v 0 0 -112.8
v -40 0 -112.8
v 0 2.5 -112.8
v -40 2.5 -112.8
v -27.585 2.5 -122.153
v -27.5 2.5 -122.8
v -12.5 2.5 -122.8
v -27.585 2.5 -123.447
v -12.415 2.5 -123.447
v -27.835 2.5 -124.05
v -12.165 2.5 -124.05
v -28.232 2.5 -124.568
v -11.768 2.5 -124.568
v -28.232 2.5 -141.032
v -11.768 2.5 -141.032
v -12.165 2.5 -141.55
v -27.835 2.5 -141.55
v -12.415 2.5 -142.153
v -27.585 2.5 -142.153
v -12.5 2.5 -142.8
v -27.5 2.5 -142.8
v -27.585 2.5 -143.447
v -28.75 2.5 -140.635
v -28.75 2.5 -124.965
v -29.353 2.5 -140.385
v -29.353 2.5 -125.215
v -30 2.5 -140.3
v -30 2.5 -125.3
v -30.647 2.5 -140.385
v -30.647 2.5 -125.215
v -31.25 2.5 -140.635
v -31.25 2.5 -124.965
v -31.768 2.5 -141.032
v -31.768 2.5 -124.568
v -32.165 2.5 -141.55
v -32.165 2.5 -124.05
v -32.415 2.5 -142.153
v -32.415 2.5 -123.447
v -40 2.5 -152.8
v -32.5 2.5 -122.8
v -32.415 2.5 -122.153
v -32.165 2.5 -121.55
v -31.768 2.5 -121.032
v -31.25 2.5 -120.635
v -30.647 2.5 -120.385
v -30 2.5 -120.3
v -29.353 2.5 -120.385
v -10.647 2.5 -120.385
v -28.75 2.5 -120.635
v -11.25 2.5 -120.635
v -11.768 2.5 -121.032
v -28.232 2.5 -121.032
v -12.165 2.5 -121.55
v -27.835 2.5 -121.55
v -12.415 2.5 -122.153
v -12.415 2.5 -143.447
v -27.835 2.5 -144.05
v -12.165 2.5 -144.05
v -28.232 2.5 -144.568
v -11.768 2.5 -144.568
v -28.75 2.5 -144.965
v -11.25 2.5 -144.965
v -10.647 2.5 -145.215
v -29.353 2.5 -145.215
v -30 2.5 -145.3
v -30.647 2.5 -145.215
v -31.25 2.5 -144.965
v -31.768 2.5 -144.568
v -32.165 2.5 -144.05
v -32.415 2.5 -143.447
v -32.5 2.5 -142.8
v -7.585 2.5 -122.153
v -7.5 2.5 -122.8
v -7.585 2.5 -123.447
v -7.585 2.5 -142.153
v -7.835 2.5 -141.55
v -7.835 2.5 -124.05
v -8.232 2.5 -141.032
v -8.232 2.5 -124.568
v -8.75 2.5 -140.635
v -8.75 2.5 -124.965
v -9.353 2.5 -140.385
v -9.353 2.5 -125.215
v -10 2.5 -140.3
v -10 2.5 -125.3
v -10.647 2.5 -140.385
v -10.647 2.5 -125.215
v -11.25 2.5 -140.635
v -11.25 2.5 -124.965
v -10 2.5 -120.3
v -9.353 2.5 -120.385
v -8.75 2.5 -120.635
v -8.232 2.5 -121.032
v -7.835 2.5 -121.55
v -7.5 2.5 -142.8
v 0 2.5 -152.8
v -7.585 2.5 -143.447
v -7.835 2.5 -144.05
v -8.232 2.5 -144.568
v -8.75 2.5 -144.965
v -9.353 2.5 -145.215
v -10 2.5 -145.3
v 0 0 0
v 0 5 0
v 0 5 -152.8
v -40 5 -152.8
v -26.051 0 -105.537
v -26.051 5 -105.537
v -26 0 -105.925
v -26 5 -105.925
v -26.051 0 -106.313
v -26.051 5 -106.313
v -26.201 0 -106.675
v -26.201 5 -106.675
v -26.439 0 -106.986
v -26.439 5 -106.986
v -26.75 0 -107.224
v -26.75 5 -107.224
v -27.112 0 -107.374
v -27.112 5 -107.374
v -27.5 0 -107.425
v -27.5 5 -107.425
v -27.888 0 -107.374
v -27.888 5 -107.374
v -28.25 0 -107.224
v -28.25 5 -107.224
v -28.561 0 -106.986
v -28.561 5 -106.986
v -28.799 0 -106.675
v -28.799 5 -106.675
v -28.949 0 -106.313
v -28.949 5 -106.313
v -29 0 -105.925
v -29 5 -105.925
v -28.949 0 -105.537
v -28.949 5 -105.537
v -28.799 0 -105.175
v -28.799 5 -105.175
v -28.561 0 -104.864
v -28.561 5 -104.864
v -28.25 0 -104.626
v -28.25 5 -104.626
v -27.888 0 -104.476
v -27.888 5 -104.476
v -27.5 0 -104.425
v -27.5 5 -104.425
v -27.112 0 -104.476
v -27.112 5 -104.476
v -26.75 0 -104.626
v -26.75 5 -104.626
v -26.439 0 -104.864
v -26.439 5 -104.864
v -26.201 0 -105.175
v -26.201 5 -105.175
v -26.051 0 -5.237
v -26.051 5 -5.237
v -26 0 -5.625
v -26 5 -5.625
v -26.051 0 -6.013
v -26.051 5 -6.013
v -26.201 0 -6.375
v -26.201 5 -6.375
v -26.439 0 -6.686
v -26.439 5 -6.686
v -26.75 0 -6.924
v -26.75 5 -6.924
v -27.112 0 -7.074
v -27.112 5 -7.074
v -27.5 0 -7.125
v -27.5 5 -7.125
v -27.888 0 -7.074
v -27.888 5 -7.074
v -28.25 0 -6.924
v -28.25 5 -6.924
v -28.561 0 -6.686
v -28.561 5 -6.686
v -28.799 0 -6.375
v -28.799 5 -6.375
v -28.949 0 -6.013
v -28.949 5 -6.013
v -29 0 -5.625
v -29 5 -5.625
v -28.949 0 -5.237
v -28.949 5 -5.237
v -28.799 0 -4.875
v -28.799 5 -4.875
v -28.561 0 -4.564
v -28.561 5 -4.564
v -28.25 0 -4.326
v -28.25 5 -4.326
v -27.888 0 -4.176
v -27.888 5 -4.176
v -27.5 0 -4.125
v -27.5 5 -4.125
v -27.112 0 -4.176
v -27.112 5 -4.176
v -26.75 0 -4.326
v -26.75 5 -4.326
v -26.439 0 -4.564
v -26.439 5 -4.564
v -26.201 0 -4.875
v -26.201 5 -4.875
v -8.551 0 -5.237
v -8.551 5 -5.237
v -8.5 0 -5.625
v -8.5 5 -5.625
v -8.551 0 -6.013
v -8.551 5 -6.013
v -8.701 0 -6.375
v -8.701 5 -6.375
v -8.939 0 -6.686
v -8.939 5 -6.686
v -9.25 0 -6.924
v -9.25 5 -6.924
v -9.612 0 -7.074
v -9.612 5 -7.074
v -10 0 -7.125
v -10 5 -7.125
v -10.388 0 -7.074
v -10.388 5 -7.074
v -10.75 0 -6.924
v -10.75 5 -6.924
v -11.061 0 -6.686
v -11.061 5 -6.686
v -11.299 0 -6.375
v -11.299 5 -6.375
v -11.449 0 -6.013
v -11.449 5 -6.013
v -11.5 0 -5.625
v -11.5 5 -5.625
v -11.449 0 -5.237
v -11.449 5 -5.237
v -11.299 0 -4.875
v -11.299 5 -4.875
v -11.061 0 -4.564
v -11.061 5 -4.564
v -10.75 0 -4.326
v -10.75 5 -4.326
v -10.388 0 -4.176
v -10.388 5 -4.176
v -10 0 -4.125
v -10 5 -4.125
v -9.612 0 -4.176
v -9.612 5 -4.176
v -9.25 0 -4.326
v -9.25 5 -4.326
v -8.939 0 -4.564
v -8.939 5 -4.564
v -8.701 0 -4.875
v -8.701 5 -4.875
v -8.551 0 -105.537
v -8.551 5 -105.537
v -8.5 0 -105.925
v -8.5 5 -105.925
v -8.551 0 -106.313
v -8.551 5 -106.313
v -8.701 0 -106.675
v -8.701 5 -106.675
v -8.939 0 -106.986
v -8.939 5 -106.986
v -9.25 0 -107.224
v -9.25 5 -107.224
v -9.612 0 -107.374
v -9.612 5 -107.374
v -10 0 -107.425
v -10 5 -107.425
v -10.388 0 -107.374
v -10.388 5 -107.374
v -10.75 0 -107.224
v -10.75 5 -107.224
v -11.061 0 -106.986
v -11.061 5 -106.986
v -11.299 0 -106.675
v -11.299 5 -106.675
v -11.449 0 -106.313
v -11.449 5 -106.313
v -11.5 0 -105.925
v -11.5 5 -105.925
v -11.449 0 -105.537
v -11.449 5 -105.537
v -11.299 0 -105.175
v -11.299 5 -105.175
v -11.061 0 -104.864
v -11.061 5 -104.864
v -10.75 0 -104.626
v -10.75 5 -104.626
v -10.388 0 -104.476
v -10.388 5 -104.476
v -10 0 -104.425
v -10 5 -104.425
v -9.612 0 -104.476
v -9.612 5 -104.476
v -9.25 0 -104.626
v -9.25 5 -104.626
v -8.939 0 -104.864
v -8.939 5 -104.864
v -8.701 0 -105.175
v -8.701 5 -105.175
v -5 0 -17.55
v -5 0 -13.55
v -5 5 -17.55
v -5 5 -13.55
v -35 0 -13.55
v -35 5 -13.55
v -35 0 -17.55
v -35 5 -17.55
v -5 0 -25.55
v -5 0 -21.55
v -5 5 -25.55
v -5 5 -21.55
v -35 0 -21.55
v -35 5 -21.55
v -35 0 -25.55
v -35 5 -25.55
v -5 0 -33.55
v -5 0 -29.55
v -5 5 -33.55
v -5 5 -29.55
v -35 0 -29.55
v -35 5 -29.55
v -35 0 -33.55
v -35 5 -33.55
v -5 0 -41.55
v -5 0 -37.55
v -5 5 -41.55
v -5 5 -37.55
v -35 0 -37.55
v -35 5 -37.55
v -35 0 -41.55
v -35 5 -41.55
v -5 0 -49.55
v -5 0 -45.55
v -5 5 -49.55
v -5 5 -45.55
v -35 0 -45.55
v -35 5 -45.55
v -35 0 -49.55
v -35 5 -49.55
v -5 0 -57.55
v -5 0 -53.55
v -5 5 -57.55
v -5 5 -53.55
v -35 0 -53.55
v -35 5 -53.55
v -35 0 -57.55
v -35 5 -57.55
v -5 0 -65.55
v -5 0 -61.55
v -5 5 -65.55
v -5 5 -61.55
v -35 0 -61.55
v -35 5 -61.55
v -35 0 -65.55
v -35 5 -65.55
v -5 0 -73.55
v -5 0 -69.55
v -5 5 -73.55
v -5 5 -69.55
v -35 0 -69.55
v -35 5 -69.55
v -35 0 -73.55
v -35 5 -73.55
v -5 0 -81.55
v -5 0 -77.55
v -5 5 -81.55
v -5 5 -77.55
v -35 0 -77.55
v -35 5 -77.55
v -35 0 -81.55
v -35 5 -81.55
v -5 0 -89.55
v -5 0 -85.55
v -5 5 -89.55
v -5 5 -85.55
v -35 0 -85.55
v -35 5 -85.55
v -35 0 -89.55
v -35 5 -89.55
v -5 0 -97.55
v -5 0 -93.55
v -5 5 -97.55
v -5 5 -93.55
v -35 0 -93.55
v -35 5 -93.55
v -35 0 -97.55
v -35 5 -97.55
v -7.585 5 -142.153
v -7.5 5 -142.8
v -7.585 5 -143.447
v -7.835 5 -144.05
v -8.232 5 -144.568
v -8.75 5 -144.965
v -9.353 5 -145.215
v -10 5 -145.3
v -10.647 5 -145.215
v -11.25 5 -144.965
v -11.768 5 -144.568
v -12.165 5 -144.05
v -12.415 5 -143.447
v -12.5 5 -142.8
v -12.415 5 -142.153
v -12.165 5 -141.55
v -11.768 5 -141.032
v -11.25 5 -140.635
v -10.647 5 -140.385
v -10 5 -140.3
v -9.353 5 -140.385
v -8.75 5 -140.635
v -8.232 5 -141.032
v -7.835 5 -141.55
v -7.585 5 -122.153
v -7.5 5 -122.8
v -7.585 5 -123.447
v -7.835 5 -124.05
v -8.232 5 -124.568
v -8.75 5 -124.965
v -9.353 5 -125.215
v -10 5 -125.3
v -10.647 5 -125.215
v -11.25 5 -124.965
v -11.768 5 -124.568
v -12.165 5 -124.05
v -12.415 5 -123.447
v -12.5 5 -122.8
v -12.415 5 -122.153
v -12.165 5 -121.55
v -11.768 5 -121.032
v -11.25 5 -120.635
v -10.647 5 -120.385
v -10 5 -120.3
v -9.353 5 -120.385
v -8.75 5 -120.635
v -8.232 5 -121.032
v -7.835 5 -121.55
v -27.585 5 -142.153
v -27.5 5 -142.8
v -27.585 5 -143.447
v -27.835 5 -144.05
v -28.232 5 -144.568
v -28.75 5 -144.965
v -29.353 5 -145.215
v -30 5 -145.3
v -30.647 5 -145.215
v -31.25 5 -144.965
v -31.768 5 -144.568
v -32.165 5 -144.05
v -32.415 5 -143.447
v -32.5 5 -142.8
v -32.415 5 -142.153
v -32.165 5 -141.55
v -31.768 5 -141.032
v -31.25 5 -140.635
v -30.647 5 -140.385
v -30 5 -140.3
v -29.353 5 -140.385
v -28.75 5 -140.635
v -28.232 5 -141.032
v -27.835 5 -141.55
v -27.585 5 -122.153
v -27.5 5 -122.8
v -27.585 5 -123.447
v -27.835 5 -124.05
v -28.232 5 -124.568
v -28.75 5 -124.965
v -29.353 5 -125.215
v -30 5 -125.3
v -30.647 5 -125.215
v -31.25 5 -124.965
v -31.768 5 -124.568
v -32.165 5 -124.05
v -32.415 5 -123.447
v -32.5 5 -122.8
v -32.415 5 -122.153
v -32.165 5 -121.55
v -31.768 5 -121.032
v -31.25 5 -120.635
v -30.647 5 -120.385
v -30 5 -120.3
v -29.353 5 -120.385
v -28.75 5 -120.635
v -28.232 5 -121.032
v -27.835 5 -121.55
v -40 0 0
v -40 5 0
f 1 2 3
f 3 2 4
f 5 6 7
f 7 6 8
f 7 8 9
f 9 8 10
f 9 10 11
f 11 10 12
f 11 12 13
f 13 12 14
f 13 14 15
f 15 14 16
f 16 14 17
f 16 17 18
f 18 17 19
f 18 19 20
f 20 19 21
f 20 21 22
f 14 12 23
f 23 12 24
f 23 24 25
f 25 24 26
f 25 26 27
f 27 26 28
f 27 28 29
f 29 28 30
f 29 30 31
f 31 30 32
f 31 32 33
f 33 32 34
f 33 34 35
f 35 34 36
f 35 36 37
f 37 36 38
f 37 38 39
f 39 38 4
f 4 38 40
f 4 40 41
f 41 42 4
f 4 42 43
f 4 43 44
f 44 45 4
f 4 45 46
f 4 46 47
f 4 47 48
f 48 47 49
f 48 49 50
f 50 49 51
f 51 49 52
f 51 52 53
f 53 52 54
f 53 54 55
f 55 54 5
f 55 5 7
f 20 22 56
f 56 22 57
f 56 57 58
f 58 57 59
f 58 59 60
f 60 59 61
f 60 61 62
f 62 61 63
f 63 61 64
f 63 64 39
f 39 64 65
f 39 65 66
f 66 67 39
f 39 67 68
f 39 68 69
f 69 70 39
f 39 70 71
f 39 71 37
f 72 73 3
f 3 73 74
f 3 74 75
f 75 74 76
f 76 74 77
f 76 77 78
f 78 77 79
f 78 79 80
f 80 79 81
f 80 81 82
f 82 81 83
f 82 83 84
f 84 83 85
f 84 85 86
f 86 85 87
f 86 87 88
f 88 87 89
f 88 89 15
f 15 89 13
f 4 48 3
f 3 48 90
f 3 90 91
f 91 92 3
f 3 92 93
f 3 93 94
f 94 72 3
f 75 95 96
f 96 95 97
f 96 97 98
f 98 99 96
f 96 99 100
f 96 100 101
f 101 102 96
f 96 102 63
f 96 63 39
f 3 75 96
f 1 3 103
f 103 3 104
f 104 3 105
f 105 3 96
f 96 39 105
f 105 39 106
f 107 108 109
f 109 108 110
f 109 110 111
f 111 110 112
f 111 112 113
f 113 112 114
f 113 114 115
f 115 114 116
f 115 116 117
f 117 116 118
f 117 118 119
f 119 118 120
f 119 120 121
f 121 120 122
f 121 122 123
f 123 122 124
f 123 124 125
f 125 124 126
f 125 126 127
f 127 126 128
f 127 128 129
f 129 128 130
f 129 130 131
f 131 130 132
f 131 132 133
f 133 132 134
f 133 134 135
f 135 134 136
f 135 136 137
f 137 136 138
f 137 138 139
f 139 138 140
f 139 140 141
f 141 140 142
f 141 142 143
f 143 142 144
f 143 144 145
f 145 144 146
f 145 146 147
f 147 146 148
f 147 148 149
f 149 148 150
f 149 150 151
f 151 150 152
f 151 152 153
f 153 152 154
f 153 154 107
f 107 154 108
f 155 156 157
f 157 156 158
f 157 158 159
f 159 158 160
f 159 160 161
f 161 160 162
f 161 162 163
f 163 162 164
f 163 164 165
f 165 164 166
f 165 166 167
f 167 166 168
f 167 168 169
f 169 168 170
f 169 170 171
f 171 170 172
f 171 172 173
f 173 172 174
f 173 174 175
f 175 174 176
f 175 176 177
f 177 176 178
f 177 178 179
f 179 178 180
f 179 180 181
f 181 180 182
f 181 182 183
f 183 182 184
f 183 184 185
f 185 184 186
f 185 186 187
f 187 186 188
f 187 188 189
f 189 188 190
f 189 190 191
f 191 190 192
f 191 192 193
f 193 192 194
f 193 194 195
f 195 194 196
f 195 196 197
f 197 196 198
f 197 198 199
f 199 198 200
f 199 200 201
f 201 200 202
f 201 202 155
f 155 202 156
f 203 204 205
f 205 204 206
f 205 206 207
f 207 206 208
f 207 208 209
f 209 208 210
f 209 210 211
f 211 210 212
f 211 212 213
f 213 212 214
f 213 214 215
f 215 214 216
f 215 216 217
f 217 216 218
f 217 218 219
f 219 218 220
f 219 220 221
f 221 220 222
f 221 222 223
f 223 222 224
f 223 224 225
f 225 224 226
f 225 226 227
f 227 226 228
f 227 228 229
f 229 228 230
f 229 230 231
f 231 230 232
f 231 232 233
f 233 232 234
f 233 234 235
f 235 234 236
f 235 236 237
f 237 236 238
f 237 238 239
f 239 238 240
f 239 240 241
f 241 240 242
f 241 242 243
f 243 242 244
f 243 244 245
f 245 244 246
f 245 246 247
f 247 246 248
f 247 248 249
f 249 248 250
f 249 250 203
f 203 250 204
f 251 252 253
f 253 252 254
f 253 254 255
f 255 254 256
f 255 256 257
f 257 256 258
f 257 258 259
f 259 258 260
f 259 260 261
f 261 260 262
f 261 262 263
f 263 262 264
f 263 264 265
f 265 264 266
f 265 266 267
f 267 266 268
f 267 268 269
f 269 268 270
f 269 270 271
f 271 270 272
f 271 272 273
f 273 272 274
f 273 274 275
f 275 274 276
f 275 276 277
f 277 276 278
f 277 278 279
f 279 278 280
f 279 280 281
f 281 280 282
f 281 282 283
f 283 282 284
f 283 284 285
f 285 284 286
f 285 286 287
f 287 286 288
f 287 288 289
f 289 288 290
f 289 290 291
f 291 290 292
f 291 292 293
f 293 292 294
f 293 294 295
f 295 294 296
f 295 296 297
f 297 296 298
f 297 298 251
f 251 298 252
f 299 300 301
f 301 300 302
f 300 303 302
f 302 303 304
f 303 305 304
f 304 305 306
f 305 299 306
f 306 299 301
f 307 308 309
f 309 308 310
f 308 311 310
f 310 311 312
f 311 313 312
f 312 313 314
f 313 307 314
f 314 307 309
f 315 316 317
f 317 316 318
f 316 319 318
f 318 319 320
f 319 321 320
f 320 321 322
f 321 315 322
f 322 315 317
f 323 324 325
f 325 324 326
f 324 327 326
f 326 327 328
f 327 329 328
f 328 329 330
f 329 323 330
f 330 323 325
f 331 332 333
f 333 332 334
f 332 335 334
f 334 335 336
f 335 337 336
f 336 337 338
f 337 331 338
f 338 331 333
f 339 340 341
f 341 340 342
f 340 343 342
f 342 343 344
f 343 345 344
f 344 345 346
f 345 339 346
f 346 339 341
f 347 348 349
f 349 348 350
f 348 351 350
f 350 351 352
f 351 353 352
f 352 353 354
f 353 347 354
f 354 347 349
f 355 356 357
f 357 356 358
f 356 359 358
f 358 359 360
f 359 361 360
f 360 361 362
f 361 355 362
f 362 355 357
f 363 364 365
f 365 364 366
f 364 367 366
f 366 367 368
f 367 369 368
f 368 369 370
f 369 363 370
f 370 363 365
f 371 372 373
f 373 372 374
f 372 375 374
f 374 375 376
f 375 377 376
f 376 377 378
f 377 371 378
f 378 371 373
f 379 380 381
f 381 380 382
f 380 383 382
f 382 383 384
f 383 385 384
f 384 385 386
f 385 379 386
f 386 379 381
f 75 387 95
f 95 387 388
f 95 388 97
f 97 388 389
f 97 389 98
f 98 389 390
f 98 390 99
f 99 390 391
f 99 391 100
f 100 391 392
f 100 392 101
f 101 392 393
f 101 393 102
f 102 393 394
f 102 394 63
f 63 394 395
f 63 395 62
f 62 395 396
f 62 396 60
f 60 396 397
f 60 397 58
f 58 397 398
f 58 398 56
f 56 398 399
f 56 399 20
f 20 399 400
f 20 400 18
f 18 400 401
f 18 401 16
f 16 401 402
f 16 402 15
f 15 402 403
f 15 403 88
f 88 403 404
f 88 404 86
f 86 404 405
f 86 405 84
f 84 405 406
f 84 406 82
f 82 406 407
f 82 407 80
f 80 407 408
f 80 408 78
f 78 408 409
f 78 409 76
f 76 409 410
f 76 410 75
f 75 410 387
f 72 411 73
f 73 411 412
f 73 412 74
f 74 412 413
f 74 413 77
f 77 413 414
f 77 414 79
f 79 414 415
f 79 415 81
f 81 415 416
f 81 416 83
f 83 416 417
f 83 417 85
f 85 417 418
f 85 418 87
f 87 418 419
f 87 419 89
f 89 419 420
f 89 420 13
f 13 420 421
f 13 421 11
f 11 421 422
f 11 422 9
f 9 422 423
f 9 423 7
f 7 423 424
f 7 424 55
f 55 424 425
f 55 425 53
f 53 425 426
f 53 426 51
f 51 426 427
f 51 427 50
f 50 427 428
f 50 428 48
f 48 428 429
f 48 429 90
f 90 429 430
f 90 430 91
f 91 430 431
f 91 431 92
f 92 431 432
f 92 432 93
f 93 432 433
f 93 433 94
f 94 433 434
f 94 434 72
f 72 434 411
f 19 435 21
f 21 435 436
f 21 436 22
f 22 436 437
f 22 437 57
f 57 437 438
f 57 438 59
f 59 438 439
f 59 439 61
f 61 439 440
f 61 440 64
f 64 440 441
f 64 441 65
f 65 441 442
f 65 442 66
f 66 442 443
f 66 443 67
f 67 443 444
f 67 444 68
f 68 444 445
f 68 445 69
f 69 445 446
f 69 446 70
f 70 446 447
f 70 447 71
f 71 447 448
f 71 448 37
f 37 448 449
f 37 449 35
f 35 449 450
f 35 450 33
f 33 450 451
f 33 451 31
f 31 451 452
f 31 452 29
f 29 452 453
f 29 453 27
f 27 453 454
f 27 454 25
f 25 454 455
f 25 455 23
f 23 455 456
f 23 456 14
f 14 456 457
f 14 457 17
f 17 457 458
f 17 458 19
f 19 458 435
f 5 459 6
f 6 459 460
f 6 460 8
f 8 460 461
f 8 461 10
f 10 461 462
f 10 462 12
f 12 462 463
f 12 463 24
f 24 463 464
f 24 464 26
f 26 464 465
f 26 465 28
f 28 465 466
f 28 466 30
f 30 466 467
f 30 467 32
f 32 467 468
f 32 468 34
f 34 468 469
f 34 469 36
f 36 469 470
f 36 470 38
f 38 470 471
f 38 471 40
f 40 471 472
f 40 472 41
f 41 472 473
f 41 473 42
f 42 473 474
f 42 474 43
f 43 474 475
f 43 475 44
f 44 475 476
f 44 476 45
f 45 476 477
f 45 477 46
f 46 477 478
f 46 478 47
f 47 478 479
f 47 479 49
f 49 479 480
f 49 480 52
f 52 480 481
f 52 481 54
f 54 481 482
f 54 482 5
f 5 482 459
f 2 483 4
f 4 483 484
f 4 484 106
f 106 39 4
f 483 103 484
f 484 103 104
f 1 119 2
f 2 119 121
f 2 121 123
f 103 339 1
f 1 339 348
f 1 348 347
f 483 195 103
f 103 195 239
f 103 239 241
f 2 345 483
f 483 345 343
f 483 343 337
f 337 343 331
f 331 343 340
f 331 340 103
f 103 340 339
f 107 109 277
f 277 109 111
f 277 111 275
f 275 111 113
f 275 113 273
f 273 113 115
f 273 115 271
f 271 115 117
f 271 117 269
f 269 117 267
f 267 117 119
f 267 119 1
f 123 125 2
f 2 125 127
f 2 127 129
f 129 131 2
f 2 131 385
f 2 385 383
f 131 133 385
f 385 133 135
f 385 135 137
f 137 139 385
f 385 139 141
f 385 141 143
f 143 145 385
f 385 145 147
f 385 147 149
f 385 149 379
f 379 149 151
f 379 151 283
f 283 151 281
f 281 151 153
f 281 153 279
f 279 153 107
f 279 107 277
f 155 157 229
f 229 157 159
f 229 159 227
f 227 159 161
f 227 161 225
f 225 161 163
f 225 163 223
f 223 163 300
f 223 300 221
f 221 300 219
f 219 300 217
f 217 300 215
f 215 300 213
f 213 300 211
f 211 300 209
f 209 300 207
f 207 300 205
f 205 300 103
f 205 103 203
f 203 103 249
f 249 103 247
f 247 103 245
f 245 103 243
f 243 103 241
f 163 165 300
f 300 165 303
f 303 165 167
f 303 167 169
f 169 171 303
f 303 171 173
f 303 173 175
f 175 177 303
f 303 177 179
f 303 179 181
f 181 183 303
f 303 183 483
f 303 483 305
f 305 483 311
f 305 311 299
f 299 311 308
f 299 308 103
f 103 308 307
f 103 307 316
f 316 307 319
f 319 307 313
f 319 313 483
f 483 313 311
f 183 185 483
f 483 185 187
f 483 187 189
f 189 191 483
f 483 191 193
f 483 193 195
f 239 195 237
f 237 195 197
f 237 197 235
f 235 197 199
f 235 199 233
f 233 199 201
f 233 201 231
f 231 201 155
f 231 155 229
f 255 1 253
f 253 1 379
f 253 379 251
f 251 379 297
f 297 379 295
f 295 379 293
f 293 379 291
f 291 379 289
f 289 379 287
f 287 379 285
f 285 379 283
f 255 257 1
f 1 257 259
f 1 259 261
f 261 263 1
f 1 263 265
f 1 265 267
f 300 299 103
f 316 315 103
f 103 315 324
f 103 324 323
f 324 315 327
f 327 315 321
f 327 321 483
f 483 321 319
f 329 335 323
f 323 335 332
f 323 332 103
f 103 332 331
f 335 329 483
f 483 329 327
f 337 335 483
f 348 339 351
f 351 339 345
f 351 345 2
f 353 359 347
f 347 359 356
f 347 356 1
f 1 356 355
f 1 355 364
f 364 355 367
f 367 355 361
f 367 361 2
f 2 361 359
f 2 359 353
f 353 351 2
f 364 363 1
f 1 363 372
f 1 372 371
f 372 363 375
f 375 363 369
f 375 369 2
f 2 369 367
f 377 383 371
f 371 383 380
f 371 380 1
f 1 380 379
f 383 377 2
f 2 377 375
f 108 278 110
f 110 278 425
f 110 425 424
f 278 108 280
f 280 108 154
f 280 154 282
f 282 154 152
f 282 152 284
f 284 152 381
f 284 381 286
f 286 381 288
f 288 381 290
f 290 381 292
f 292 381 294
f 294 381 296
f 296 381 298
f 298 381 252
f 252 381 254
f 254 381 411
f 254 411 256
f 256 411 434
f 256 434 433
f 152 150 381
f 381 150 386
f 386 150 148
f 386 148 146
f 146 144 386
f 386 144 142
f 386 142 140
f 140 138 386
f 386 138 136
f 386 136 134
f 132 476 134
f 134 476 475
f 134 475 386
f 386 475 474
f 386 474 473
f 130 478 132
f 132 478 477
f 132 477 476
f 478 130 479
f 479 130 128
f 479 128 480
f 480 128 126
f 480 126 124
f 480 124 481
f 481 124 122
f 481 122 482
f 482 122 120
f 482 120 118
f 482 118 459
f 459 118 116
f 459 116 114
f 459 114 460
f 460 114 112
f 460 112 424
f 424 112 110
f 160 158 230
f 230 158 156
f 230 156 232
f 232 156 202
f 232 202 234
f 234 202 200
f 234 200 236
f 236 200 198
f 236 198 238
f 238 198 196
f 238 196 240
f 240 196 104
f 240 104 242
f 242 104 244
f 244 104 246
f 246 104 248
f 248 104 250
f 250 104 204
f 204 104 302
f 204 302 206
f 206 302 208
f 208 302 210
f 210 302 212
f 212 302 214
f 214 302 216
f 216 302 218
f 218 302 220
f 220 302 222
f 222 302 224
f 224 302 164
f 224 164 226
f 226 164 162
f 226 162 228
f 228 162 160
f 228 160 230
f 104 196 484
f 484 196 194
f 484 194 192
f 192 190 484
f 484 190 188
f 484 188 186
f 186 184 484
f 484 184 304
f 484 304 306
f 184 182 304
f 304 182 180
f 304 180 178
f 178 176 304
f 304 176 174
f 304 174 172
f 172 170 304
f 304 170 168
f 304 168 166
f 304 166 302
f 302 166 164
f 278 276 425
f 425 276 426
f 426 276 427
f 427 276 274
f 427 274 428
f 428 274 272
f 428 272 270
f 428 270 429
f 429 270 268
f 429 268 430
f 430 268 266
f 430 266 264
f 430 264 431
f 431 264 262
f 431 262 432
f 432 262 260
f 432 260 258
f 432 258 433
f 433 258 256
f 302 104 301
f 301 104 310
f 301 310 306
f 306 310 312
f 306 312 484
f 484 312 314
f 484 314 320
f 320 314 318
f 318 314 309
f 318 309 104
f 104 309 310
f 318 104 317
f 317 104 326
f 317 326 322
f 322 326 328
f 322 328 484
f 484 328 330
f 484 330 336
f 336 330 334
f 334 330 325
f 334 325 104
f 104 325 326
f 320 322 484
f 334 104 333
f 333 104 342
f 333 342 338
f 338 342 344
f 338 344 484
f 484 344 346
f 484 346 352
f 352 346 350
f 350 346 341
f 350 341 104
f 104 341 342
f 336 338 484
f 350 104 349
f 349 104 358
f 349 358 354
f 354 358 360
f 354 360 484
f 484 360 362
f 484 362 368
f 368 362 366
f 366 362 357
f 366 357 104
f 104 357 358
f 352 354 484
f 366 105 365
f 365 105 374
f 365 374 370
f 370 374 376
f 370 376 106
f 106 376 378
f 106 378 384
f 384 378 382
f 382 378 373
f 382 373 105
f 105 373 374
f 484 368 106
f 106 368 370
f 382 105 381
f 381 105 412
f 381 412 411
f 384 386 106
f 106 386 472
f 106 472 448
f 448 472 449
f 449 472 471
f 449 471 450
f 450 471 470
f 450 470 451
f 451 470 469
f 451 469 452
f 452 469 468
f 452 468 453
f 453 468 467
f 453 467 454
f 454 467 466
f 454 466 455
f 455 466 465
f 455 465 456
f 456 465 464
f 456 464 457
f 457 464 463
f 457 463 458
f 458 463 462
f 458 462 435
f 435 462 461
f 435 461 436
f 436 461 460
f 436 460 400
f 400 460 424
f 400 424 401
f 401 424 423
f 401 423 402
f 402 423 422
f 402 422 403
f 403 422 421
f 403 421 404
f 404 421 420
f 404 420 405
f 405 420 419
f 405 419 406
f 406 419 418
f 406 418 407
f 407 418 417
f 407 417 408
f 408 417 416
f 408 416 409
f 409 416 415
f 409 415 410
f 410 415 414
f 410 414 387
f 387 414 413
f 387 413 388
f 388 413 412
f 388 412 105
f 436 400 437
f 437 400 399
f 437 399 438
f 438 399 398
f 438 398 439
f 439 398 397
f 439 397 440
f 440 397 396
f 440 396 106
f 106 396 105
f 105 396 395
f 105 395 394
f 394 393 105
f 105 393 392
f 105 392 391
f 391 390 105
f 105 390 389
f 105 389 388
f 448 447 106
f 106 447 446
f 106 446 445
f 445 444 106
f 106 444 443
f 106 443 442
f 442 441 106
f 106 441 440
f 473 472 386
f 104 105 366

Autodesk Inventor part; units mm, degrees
ref_plane "YZ Plane" through (0, 0, 0) normal (1, 0, 0) x (0, 1, 0)
ref_plane "XZ Plane" through (0, 0, 0) normal (0, 1, 0) x (-1, 0, 0)
ref_plane "XY Plane" through (0, 0, 0) normal (0, 0, 1) x (1, 0, 0)
sketch "Sketch1" plane through (0, 0, 0) normal (0, 1, 0) x (-1, 0, 0)
  line L0 (0, 0) -> (40, 0)
  line L1 (40, 0) -> (40, -152.8)
  line L2 (40, -152.8) -> (0, -152.8)
  line L3 (0, -152.8) -> (0, 0)
  circle A0 centre (30, -122.8) radius 2.5
  circle A1 centre (30, -142.8) radius 2.5
  circle A2 centre (10, -122.8) radius 2.5
  circle A3 centre (10, -142.8) radius 2.5
  line L4 (5, -97.55) -> (35, -97.55)
  line L5 (35, -97.55) -> (35, -93.55)
  line L6 (35, -93.55) -> (5, -93.55)
  line L7 (5, -93.55) -> (5, -97.55)
  line L8 (5, -89.55) -> (35, -89.55)
  line L9 (35, -89.55) -> (35, -85.55)
  line L10 (35, -85.55) -> (5, -85.55)
  line L11 (5, -85.55) -> (5, -89.55)
  line L12 (5, -81.55) -> (35, -81.55)
  line L13 (35, -81.55) -> (35, -77.55)
  line L14 (35, -77.55) -> (5, -77.55)
  line L15 (5, -77.55) -> (5, -81.55)
  line L16 (5, -73.55) -> (35, -73.55)
  line L17 (35, -73.55) -> (35, -69.55)
  line L18 (35, -69.55) -> (5, -69.55)
  line L19 (5, -69.55) -> (5, -73.55)
  line L20 (5, -65.55) -> (35, -65.55)
  line L21 (35, -65.55) -> (35, -61.55)
  line L22 (35, -61.55) -> (5, -61.55)
  line L23 (5, -61.55) -> (5, -65.55)
  line L24 (5, -57.55) -> (35, -57.55)
  line L25 (35, -57.55) -> (35, -53.55)
  line L26 (35, -53.55) -> (5, -53.55)
  line L27 (5, -53.55) -> (5, -57.55)
  line L28 (5, -49.55) -> (35, -49.55)
  line L29 (35, -49.55) -> (35, -45.55)
  line L30 (35, -45.55) -> (5, -45.55)
  line L31 (5, -45.55) -> (5, -49.55)
  line L32 (5, -41.55) -> (35, -41.55)
  line L33 (35, -41.55) -> (35, -37.55)
  line L34 (35, -37.55) -> (5, -37.55)
  line L35 (5, -37.55) -> (5, -41.55)
  line L36 (5, -33.55) -> (35, -33.55)
  line L37 (35, -33.55) -> (35, -29.55)
  line L38 (35, -29.55) -> (5, -29.55)
  line L39 (5, -29.55) -> (5, -33.55)
  line L40 (5, -25.55) -> (35, -25.55)
  line L41 (35, -25.55) -> (35, -21.55)
  line L42 (35, -21.55) -> (5, -21.55)
  line L43 (5, -21.55) -> (5, -25.55)
  line L44 (5, -17.55) -> (35, -17.55)
  line L45 (35, -17.55) -> (35, -13.55)
  line L46 (35, -13.55) -> (5, -13.55)
  line L47 (5, -13.55) -> (5, -17.55)
  dimension "d0" = 40
  dimension "d1" = 152.8
  dimension "d2" = 5
  dimension "d3" = 5
  dimension "d4" = 5
  dimension "d5" = 5
  dimension "d6" = 10
  dimension "d7" = 0
  dimension "d8" = 20
  dimension "d11" = 30
  dimension "d12" = 20
  dimension "d13" = 30
  dimension "d14" = 10
  dimension "d15" = 0
  dimension "d16" = 30
  dimension "d18" = 55.25
  dimension "d31" = 30
  dimension "d33" = 30
  dimension "d35" = 30
  dimension "d37" = 30
  dimension "d39" = 30
  dimension "d41" = 30
  dimension "d43" = 30
  dimension "d45" = 30
  dimension "d47" = 30
  dimension "d49" = 30
extrude "Extrusion1" add sketch "Sketch1" along normal blind 5
sketch "Sketch2" plane through (0, 5, 0) normal (0, 1, 0) x (1, 0, 0)
  line L0 (-5, 17.55) -> (-5, 13.55) projected
  line L1 (-5, 13.55) -> (-35, 13.55) projected
  line L2 (-35, 13.55) -> (-35, 17.55) projected
  line L3 (-35, 17.55) -> (-5, 17.55) projected
  line L4 (-5, 25.55) -> (-5, 21.55) projected
  line L5 (-5, 21.55) -> (-35, 21.55) projected
  line L6 (-35, 21.55) -> (-35, 25.55) projected
  line L7 (-35, 25.55) -> (-5, 25.55) projected
  line L8 (-5, 33.55) -> (-5, 29.55) projected
  line L9 (-5, 29.55) -> (-35, 29.55) projected
  line L10 (-35, 29.55) -> (-35, 33.55) projected
  line L11 (-35, 33.55) -> (-5, 33.55) projected
  line L12 (-5, 41.55) -> (-5, 37.55) projected
  line L13 (-5, 37.55) -> (-35, 37.55) projected
  line L14 (-35, 37.55) -> (-35, 41.55) projected
  line L15 (-35, 41.55) -> (-5, 41.55) projected
  line L16 (-5, 49.55) -> (-5, 45.55) projected
  line L17 (-5, 45.55) -> (-35, 45.55) projected
  line L18 (-35, 45.55) -> (-35, 49.55) projected
  line L19 (-35, 49.55) -> (-5, 49.55) projected
  line L20 (-5, 57.55) -> (-5, 53.55) projected
  line L21 (-5, 53.55) -> (-35, 53.55) projected
  line L22 (-35, 53.55) -> (-35, 57.55) projected
  line L23 (-35, 57.55) -> (-5, 57.55) projected
  line L24 (-5, 65.55) -> (-5, 61.55) projected
  line L25 (-5, 61.55) -> (-35, 61.55) projected
  line L26 (-35, 61.55) -> (-35, 65.55) projected
  line L27 (-35, 65.55) -> (-5, 65.55) projected
  line L28 (-5, 73.55) -> (-5, 69.55) projected
  line L29 (-5, 69.55) -> (-35, 69.55) projected
  line L30 (-35, 69.55) -> (-35, 73.55) projected
  line L31 (-35, 73.55) -> (-5, 73.55) projected
  line L32 (-5, 81.55) -> (-5, 77.55) projected
  line L33 (-5, 77.55) -> (-35, 77.55) projected
  line L34 (-35, 77.55) -> (-35, 81.55) projected
  line L35 (-35, 81.55) -> (-5, 81.55) projected
  line L36 (-5, 89.55) -> (-5, 85.55) projected
  line L37 (-5, 85.55) -> (-35, 85.55) projected
  line L38 (-35, 85.55) -> (-35, 89.55) projected
  line L39 (-35, 89.55) -> (-5, 89.55) projected
  line L40 (-5, 97.55) -> (-5, 93.55) projected
  line L41 (-5, 93.55) -> (-35, 93.55) projected
  line L42 (-35, 93.55) -> (-35, 97.55) projected
  line L43 (-35, 97.55) -> (-5, 97.55) projected
  circle A0 centre (-10, 142.8) radius 2.5 projected
  circle A1 centre (-10, 122.8) radius 2.5 projected
  circle A2 centre (-30, 142.8) radius 2.5 projected
  circle A3 centre (-30, 122.8) radius 2.5 projected
  line L44 (-40, 0) -> (0, 0) projected
  line L45 (0, 0) -> (0, 152.8) projected
  line L46 (0, 152.8) -> (-40, 152.8) projected
  line L47 (-40, 152.8) -> (-40, 0) projected
  circle A4 centre (-27.5, 5.625) radius 1.5
  circle A5 centre (-10, 5.625) radius 1.5
  circle A6 centre (-27.5, 105.925) radius 1.5
  circle A7 centre (-10, 105.925) radius 1.5
  dimension "d53" = 3
  dimension "d54" = 3
  dimension "d55" = 3
  dimension "d56" = 3
  dimension "d57" = 12.5
  dimension "d58" = 10
  dimension "d59" = 12.5
  dimension "d60" = 10
  dimension "d61" = 5.625
  dimension "d62" = 5.625
  dimension "d63" = 46.875
  dimension "d64" = 46.875
extrude "Extrusion2" cut sketch "Sketch2" against normal blind 5 contours A4 | A5 | A6 | A7
sketch "Sketch3" plane through (0, 0, 0) normal (0, -1, 0) x (1, 0, 0)
  circle A0 centre (-27.5, -105.925) radius 1.5 projected
  circle A1 centre (-27.5, -5.625) radius 1.5 projected
  circle A2 centre (-10, -5.625) radius 1.5 projected
  circle A3 centre (-10, -105.925) radius 1.5 projected
  line L0 (-5, -13.55) -> (-5, -17.55) projected
  line L1 (-5, -17.55) -> (-35, -17.55) projected
  line L2 (-35, -17.55) -> (-35, -13.55) projected
  line L3 (-35, -13.55) -> (-5, -13.55) projected
  line L4 (-5, -21.55) -> (-5, -25.55) projected
  line L5 (-5, -25.55) -> (-35, -25.55) projected
  line L6 (-35, -25.55) -> (-35, -21.55) projected
  line L7 (-35, -21.55) -> (-5, -21.55) projected
  line L8 (-5, -29.55) -> (-5, -33.55) projected
  line L9 (-5, -33.55) -> (-35, -33.55) projected
  line L10 (-35, -33.55) -> (-35, -29.55) projected
  line L11 (-35, -29.55) -> (-5, -29.55) projected
  line L12 (-5, -37.55) -> (-5, -41.55) projected
  line L13 (-5, -41.55) -> (-35, -41.55) projected
  line L14 (-35, -41.55) -> (-35, -37.55) projected
  line L15 (-35, -37.55) -> (-5, -37.55) projected
  line L16 (-5, -45.55) -> (-5, -49.55) projected
  line L17 (-5, -49.55) -> (-35, -49.55) projected
  line L18 (-35, -49.55) -> (-35, -45.55) projected
  line L19 (-35, -45.55) -> (-5, -45.55) projected
  line L20 (-5, -53.55) -> (-5, -57.55) projected
  line L21 (-5, -57.55) -> (-35, -57.55) projected
  line L22 (-35, -57.55) -> (-35, -53.55) projected
  line L23 (-35, -53.55) -> (-5, -53.55) projected
  line L24 (-5, -61.55) -> (-5, -65.55) projected
  line L25 (-5, -65.55) -> (-35, -65.55) projected
  line L26 (-35, -65.55) -> (-35, -61.55) projected
  line L27 (-35, -61.55) -> (-5, -61.55) projected
  line L28 (-5, -69.55) -> (-5, -73.55) projected
  line L29 (-5, -73.55) -> (-35, -73.55) projected
  line L30 (-35, -73.55) -> (-35, -69.55) projected
  line L31 (-35, -69.55) -> (-5, -69.55) projected
  line L32 (-5, -77.55) -> (-5, -81.55) projected
  line L33 (-5, -81.55) -> (-35, -81.55) projected
  line L34 (-35, -81.55) -> (-35, -77.55) projected
  line L35 (-35, -77.55) -> (-5, -77.55) projected
  line L36 (-5, -85.55) -> (-5, -89.55) projected
  line L37 (-5, -89.55) -> (-35, -89.55) projected
  line L38 (-35, -89.55) -> (-35, -85.55) projected
  line L39 (-35, -85.55) -> (-5, -85.55) projected
  line L40 (-5, -93.55) -> (-5, -97.55) projected
  line L41 (-5, -97.55) -> (-35, -97.55) projected
  line L42 (-35, -97.55) -> (-35, -93.55) projected
  line L43 (-35, -93.55) -> (-5, -93.55) projected
  circle A4 centre (-10, -142.8) radius 2.5 projected
  circle A5 centre (-10, -122.8) radius 2.5 projected
  circle A6 centre (-30, -142.8) radius 2.5 projected
  circle A7 centre (-30, -122.8) radius 2.5 projected
  line L44 (0, 0) -> (-40, 0) projected
  line L45 (-40, 0) -> (-40, -152.8) projected
  line L46 (-40, -152.8) -> (0, -152.8) projected
  line L47 (0, -152.8) -> (0, 0) projected
  line L48 (0, 0) -> (0, -152.8) projected
  line L49 (-40, -152.8) -> (0, -152.8)
  line L50 (0, -152.8) -> (0, -112.8)
  line L51 (0, -112.8) -> (-40, -112.8)
  line L52 (-40, -112.8) -> (-40, -152.8)
  dimension "d67" = 40
extrude "Extrusion3" cut sketch "Sketch3" against normal blind 2.5 contours L47 L46 L45 L51
properties part number "Base Right Front Panel"
